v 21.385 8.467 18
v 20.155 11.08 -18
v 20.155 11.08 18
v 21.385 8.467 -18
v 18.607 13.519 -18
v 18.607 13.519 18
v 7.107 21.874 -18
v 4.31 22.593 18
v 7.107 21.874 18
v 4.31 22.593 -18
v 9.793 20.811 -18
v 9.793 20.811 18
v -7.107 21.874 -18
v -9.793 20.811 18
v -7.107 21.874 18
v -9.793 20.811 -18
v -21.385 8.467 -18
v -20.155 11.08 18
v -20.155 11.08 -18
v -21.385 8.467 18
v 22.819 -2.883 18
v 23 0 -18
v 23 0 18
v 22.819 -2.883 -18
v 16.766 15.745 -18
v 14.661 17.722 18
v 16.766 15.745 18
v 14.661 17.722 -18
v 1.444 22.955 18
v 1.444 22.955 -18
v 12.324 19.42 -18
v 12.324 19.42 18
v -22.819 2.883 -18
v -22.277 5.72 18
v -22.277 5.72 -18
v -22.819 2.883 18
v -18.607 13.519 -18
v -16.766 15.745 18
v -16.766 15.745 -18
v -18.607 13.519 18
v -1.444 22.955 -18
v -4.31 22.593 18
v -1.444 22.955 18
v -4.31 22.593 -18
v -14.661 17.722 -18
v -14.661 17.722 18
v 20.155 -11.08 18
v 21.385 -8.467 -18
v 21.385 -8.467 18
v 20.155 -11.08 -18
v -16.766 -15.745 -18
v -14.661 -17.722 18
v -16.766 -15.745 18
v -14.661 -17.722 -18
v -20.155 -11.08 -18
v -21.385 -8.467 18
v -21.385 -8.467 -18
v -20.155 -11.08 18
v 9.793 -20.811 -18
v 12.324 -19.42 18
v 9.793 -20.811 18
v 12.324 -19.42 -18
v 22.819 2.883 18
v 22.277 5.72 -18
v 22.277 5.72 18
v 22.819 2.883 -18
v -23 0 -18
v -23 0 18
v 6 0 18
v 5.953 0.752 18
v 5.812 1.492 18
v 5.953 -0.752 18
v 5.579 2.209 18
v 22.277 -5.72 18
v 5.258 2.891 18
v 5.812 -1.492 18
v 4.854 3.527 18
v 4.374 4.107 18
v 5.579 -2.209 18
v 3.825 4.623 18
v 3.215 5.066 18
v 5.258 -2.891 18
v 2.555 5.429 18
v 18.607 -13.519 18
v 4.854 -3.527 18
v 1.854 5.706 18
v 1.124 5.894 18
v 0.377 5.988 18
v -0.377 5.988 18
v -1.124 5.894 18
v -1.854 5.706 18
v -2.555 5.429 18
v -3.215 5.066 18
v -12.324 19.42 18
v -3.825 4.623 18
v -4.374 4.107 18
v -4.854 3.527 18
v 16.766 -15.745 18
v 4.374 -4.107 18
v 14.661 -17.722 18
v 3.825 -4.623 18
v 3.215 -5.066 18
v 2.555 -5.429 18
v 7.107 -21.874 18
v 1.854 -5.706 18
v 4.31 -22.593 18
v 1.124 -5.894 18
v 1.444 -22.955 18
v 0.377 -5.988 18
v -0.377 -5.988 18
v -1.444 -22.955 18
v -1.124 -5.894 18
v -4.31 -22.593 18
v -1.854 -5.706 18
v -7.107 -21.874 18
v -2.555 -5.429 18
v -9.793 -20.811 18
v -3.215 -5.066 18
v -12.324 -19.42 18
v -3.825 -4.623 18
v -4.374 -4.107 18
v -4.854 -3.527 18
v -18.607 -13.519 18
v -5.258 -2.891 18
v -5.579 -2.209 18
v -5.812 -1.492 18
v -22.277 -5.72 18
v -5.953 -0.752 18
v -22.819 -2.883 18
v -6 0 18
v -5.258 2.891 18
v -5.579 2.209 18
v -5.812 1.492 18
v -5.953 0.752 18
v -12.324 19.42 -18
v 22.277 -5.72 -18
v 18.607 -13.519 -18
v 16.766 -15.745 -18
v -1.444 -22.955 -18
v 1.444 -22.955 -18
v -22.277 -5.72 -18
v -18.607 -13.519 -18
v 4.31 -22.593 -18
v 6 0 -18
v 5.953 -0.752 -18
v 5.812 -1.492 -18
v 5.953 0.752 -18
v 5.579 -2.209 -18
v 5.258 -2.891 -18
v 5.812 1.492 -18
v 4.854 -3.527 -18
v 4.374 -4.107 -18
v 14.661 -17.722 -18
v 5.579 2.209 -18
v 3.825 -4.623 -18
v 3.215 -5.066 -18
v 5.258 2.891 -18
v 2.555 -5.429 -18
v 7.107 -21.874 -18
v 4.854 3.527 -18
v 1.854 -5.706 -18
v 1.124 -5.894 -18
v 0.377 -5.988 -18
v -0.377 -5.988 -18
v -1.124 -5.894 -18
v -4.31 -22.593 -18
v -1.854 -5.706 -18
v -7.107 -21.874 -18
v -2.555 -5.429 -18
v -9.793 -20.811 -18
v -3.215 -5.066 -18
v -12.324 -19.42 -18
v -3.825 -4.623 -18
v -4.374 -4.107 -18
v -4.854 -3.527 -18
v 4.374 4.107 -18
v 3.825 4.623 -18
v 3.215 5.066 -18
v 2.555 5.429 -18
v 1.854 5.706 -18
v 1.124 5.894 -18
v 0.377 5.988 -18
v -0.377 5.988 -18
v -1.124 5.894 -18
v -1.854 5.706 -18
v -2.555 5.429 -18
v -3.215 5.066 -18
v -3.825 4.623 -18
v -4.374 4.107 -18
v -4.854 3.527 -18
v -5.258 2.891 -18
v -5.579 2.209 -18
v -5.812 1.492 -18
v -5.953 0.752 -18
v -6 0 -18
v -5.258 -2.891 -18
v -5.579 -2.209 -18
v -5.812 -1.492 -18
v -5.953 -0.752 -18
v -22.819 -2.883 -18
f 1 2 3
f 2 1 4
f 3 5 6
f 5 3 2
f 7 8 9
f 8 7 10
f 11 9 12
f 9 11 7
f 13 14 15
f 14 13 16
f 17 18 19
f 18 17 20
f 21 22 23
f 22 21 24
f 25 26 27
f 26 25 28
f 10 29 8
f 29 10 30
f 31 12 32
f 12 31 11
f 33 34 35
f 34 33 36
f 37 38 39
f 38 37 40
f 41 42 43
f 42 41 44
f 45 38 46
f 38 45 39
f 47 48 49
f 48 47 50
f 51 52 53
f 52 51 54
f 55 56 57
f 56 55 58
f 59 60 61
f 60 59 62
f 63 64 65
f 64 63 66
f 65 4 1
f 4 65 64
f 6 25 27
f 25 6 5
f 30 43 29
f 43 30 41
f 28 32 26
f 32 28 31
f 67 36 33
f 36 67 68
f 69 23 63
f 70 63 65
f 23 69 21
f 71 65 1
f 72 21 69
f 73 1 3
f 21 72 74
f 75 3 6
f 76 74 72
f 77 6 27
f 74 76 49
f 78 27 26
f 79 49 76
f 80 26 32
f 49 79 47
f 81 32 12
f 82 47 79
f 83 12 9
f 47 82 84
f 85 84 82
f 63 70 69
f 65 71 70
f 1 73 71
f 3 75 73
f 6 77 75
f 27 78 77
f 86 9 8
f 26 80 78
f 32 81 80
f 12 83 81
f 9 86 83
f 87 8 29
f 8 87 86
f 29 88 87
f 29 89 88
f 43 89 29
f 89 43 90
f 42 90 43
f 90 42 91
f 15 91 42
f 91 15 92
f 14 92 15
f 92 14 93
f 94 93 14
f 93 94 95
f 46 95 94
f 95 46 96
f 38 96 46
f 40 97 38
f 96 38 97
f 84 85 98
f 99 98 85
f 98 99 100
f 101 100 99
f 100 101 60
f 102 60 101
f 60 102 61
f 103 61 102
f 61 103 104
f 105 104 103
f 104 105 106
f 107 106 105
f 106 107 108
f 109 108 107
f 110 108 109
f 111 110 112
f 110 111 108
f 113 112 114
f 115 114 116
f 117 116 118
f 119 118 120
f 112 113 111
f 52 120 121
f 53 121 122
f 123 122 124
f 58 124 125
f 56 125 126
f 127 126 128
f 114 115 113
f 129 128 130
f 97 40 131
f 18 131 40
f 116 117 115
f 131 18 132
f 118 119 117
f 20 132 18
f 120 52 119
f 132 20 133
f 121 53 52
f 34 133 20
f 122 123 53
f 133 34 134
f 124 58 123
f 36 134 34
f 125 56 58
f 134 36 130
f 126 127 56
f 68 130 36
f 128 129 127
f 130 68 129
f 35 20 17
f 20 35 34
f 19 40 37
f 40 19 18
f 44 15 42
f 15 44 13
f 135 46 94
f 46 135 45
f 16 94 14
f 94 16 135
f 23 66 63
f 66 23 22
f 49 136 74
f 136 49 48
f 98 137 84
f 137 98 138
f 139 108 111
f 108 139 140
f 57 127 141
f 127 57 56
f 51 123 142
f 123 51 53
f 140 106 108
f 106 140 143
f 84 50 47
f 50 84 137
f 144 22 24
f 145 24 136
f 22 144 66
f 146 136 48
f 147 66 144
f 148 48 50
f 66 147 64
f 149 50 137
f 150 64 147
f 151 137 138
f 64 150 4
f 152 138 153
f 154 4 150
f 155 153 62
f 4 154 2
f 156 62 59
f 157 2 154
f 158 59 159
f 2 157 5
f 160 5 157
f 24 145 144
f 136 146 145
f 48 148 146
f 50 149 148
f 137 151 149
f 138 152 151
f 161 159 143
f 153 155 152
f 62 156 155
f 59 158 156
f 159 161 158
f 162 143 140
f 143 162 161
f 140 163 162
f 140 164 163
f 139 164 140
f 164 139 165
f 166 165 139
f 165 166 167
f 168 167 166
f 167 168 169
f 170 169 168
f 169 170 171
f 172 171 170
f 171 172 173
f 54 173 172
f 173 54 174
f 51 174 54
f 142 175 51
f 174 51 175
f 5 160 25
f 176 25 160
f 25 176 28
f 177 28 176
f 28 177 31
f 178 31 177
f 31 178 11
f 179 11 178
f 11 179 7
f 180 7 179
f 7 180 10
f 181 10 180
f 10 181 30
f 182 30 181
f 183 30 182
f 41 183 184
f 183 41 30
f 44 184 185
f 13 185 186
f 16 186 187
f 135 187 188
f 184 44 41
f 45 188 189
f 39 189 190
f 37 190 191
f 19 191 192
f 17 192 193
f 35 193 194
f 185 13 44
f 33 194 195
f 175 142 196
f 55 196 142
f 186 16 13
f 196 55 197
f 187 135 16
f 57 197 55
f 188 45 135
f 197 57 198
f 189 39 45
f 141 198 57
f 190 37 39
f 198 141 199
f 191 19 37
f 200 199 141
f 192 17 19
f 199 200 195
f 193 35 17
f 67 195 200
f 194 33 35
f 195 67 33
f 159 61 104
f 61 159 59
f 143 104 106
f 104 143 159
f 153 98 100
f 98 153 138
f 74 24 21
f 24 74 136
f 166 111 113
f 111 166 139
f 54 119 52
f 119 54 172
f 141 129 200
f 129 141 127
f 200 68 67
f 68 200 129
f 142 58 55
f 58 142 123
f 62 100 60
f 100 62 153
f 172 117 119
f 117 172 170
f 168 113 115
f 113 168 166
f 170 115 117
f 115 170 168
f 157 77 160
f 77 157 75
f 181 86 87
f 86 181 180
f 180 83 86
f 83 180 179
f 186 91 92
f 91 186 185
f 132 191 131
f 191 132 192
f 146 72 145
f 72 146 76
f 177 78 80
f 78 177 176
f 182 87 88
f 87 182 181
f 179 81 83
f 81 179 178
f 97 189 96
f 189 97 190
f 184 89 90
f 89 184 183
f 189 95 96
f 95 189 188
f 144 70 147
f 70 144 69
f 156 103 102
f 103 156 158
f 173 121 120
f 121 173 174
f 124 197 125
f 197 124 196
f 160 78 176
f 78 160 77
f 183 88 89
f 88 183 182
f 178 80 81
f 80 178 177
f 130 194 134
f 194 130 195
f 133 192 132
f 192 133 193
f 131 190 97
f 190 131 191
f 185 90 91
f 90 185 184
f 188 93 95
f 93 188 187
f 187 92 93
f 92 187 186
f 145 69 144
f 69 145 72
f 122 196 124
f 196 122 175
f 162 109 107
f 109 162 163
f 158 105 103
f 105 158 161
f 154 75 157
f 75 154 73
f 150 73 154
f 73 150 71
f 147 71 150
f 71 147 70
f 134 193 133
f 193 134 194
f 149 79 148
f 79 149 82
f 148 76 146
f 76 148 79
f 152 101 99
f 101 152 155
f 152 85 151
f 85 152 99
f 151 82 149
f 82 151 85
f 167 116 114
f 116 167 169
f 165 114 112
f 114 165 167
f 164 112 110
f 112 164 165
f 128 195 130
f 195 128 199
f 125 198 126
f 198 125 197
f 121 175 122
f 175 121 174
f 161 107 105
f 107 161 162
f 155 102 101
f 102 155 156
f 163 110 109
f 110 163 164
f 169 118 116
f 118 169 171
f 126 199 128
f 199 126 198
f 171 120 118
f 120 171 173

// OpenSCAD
$fn = 50;


difference() {
	union() {
		translate(v = [0, 0, -18.0000000000]) {
			cylinder(h = 36, r = 23.0000000000);
		}
	}
	union() {
		translate(v = [0, 0, -100.0000000000]) {
			cylinder(h = 200, r = 6);
		}
	}
}
